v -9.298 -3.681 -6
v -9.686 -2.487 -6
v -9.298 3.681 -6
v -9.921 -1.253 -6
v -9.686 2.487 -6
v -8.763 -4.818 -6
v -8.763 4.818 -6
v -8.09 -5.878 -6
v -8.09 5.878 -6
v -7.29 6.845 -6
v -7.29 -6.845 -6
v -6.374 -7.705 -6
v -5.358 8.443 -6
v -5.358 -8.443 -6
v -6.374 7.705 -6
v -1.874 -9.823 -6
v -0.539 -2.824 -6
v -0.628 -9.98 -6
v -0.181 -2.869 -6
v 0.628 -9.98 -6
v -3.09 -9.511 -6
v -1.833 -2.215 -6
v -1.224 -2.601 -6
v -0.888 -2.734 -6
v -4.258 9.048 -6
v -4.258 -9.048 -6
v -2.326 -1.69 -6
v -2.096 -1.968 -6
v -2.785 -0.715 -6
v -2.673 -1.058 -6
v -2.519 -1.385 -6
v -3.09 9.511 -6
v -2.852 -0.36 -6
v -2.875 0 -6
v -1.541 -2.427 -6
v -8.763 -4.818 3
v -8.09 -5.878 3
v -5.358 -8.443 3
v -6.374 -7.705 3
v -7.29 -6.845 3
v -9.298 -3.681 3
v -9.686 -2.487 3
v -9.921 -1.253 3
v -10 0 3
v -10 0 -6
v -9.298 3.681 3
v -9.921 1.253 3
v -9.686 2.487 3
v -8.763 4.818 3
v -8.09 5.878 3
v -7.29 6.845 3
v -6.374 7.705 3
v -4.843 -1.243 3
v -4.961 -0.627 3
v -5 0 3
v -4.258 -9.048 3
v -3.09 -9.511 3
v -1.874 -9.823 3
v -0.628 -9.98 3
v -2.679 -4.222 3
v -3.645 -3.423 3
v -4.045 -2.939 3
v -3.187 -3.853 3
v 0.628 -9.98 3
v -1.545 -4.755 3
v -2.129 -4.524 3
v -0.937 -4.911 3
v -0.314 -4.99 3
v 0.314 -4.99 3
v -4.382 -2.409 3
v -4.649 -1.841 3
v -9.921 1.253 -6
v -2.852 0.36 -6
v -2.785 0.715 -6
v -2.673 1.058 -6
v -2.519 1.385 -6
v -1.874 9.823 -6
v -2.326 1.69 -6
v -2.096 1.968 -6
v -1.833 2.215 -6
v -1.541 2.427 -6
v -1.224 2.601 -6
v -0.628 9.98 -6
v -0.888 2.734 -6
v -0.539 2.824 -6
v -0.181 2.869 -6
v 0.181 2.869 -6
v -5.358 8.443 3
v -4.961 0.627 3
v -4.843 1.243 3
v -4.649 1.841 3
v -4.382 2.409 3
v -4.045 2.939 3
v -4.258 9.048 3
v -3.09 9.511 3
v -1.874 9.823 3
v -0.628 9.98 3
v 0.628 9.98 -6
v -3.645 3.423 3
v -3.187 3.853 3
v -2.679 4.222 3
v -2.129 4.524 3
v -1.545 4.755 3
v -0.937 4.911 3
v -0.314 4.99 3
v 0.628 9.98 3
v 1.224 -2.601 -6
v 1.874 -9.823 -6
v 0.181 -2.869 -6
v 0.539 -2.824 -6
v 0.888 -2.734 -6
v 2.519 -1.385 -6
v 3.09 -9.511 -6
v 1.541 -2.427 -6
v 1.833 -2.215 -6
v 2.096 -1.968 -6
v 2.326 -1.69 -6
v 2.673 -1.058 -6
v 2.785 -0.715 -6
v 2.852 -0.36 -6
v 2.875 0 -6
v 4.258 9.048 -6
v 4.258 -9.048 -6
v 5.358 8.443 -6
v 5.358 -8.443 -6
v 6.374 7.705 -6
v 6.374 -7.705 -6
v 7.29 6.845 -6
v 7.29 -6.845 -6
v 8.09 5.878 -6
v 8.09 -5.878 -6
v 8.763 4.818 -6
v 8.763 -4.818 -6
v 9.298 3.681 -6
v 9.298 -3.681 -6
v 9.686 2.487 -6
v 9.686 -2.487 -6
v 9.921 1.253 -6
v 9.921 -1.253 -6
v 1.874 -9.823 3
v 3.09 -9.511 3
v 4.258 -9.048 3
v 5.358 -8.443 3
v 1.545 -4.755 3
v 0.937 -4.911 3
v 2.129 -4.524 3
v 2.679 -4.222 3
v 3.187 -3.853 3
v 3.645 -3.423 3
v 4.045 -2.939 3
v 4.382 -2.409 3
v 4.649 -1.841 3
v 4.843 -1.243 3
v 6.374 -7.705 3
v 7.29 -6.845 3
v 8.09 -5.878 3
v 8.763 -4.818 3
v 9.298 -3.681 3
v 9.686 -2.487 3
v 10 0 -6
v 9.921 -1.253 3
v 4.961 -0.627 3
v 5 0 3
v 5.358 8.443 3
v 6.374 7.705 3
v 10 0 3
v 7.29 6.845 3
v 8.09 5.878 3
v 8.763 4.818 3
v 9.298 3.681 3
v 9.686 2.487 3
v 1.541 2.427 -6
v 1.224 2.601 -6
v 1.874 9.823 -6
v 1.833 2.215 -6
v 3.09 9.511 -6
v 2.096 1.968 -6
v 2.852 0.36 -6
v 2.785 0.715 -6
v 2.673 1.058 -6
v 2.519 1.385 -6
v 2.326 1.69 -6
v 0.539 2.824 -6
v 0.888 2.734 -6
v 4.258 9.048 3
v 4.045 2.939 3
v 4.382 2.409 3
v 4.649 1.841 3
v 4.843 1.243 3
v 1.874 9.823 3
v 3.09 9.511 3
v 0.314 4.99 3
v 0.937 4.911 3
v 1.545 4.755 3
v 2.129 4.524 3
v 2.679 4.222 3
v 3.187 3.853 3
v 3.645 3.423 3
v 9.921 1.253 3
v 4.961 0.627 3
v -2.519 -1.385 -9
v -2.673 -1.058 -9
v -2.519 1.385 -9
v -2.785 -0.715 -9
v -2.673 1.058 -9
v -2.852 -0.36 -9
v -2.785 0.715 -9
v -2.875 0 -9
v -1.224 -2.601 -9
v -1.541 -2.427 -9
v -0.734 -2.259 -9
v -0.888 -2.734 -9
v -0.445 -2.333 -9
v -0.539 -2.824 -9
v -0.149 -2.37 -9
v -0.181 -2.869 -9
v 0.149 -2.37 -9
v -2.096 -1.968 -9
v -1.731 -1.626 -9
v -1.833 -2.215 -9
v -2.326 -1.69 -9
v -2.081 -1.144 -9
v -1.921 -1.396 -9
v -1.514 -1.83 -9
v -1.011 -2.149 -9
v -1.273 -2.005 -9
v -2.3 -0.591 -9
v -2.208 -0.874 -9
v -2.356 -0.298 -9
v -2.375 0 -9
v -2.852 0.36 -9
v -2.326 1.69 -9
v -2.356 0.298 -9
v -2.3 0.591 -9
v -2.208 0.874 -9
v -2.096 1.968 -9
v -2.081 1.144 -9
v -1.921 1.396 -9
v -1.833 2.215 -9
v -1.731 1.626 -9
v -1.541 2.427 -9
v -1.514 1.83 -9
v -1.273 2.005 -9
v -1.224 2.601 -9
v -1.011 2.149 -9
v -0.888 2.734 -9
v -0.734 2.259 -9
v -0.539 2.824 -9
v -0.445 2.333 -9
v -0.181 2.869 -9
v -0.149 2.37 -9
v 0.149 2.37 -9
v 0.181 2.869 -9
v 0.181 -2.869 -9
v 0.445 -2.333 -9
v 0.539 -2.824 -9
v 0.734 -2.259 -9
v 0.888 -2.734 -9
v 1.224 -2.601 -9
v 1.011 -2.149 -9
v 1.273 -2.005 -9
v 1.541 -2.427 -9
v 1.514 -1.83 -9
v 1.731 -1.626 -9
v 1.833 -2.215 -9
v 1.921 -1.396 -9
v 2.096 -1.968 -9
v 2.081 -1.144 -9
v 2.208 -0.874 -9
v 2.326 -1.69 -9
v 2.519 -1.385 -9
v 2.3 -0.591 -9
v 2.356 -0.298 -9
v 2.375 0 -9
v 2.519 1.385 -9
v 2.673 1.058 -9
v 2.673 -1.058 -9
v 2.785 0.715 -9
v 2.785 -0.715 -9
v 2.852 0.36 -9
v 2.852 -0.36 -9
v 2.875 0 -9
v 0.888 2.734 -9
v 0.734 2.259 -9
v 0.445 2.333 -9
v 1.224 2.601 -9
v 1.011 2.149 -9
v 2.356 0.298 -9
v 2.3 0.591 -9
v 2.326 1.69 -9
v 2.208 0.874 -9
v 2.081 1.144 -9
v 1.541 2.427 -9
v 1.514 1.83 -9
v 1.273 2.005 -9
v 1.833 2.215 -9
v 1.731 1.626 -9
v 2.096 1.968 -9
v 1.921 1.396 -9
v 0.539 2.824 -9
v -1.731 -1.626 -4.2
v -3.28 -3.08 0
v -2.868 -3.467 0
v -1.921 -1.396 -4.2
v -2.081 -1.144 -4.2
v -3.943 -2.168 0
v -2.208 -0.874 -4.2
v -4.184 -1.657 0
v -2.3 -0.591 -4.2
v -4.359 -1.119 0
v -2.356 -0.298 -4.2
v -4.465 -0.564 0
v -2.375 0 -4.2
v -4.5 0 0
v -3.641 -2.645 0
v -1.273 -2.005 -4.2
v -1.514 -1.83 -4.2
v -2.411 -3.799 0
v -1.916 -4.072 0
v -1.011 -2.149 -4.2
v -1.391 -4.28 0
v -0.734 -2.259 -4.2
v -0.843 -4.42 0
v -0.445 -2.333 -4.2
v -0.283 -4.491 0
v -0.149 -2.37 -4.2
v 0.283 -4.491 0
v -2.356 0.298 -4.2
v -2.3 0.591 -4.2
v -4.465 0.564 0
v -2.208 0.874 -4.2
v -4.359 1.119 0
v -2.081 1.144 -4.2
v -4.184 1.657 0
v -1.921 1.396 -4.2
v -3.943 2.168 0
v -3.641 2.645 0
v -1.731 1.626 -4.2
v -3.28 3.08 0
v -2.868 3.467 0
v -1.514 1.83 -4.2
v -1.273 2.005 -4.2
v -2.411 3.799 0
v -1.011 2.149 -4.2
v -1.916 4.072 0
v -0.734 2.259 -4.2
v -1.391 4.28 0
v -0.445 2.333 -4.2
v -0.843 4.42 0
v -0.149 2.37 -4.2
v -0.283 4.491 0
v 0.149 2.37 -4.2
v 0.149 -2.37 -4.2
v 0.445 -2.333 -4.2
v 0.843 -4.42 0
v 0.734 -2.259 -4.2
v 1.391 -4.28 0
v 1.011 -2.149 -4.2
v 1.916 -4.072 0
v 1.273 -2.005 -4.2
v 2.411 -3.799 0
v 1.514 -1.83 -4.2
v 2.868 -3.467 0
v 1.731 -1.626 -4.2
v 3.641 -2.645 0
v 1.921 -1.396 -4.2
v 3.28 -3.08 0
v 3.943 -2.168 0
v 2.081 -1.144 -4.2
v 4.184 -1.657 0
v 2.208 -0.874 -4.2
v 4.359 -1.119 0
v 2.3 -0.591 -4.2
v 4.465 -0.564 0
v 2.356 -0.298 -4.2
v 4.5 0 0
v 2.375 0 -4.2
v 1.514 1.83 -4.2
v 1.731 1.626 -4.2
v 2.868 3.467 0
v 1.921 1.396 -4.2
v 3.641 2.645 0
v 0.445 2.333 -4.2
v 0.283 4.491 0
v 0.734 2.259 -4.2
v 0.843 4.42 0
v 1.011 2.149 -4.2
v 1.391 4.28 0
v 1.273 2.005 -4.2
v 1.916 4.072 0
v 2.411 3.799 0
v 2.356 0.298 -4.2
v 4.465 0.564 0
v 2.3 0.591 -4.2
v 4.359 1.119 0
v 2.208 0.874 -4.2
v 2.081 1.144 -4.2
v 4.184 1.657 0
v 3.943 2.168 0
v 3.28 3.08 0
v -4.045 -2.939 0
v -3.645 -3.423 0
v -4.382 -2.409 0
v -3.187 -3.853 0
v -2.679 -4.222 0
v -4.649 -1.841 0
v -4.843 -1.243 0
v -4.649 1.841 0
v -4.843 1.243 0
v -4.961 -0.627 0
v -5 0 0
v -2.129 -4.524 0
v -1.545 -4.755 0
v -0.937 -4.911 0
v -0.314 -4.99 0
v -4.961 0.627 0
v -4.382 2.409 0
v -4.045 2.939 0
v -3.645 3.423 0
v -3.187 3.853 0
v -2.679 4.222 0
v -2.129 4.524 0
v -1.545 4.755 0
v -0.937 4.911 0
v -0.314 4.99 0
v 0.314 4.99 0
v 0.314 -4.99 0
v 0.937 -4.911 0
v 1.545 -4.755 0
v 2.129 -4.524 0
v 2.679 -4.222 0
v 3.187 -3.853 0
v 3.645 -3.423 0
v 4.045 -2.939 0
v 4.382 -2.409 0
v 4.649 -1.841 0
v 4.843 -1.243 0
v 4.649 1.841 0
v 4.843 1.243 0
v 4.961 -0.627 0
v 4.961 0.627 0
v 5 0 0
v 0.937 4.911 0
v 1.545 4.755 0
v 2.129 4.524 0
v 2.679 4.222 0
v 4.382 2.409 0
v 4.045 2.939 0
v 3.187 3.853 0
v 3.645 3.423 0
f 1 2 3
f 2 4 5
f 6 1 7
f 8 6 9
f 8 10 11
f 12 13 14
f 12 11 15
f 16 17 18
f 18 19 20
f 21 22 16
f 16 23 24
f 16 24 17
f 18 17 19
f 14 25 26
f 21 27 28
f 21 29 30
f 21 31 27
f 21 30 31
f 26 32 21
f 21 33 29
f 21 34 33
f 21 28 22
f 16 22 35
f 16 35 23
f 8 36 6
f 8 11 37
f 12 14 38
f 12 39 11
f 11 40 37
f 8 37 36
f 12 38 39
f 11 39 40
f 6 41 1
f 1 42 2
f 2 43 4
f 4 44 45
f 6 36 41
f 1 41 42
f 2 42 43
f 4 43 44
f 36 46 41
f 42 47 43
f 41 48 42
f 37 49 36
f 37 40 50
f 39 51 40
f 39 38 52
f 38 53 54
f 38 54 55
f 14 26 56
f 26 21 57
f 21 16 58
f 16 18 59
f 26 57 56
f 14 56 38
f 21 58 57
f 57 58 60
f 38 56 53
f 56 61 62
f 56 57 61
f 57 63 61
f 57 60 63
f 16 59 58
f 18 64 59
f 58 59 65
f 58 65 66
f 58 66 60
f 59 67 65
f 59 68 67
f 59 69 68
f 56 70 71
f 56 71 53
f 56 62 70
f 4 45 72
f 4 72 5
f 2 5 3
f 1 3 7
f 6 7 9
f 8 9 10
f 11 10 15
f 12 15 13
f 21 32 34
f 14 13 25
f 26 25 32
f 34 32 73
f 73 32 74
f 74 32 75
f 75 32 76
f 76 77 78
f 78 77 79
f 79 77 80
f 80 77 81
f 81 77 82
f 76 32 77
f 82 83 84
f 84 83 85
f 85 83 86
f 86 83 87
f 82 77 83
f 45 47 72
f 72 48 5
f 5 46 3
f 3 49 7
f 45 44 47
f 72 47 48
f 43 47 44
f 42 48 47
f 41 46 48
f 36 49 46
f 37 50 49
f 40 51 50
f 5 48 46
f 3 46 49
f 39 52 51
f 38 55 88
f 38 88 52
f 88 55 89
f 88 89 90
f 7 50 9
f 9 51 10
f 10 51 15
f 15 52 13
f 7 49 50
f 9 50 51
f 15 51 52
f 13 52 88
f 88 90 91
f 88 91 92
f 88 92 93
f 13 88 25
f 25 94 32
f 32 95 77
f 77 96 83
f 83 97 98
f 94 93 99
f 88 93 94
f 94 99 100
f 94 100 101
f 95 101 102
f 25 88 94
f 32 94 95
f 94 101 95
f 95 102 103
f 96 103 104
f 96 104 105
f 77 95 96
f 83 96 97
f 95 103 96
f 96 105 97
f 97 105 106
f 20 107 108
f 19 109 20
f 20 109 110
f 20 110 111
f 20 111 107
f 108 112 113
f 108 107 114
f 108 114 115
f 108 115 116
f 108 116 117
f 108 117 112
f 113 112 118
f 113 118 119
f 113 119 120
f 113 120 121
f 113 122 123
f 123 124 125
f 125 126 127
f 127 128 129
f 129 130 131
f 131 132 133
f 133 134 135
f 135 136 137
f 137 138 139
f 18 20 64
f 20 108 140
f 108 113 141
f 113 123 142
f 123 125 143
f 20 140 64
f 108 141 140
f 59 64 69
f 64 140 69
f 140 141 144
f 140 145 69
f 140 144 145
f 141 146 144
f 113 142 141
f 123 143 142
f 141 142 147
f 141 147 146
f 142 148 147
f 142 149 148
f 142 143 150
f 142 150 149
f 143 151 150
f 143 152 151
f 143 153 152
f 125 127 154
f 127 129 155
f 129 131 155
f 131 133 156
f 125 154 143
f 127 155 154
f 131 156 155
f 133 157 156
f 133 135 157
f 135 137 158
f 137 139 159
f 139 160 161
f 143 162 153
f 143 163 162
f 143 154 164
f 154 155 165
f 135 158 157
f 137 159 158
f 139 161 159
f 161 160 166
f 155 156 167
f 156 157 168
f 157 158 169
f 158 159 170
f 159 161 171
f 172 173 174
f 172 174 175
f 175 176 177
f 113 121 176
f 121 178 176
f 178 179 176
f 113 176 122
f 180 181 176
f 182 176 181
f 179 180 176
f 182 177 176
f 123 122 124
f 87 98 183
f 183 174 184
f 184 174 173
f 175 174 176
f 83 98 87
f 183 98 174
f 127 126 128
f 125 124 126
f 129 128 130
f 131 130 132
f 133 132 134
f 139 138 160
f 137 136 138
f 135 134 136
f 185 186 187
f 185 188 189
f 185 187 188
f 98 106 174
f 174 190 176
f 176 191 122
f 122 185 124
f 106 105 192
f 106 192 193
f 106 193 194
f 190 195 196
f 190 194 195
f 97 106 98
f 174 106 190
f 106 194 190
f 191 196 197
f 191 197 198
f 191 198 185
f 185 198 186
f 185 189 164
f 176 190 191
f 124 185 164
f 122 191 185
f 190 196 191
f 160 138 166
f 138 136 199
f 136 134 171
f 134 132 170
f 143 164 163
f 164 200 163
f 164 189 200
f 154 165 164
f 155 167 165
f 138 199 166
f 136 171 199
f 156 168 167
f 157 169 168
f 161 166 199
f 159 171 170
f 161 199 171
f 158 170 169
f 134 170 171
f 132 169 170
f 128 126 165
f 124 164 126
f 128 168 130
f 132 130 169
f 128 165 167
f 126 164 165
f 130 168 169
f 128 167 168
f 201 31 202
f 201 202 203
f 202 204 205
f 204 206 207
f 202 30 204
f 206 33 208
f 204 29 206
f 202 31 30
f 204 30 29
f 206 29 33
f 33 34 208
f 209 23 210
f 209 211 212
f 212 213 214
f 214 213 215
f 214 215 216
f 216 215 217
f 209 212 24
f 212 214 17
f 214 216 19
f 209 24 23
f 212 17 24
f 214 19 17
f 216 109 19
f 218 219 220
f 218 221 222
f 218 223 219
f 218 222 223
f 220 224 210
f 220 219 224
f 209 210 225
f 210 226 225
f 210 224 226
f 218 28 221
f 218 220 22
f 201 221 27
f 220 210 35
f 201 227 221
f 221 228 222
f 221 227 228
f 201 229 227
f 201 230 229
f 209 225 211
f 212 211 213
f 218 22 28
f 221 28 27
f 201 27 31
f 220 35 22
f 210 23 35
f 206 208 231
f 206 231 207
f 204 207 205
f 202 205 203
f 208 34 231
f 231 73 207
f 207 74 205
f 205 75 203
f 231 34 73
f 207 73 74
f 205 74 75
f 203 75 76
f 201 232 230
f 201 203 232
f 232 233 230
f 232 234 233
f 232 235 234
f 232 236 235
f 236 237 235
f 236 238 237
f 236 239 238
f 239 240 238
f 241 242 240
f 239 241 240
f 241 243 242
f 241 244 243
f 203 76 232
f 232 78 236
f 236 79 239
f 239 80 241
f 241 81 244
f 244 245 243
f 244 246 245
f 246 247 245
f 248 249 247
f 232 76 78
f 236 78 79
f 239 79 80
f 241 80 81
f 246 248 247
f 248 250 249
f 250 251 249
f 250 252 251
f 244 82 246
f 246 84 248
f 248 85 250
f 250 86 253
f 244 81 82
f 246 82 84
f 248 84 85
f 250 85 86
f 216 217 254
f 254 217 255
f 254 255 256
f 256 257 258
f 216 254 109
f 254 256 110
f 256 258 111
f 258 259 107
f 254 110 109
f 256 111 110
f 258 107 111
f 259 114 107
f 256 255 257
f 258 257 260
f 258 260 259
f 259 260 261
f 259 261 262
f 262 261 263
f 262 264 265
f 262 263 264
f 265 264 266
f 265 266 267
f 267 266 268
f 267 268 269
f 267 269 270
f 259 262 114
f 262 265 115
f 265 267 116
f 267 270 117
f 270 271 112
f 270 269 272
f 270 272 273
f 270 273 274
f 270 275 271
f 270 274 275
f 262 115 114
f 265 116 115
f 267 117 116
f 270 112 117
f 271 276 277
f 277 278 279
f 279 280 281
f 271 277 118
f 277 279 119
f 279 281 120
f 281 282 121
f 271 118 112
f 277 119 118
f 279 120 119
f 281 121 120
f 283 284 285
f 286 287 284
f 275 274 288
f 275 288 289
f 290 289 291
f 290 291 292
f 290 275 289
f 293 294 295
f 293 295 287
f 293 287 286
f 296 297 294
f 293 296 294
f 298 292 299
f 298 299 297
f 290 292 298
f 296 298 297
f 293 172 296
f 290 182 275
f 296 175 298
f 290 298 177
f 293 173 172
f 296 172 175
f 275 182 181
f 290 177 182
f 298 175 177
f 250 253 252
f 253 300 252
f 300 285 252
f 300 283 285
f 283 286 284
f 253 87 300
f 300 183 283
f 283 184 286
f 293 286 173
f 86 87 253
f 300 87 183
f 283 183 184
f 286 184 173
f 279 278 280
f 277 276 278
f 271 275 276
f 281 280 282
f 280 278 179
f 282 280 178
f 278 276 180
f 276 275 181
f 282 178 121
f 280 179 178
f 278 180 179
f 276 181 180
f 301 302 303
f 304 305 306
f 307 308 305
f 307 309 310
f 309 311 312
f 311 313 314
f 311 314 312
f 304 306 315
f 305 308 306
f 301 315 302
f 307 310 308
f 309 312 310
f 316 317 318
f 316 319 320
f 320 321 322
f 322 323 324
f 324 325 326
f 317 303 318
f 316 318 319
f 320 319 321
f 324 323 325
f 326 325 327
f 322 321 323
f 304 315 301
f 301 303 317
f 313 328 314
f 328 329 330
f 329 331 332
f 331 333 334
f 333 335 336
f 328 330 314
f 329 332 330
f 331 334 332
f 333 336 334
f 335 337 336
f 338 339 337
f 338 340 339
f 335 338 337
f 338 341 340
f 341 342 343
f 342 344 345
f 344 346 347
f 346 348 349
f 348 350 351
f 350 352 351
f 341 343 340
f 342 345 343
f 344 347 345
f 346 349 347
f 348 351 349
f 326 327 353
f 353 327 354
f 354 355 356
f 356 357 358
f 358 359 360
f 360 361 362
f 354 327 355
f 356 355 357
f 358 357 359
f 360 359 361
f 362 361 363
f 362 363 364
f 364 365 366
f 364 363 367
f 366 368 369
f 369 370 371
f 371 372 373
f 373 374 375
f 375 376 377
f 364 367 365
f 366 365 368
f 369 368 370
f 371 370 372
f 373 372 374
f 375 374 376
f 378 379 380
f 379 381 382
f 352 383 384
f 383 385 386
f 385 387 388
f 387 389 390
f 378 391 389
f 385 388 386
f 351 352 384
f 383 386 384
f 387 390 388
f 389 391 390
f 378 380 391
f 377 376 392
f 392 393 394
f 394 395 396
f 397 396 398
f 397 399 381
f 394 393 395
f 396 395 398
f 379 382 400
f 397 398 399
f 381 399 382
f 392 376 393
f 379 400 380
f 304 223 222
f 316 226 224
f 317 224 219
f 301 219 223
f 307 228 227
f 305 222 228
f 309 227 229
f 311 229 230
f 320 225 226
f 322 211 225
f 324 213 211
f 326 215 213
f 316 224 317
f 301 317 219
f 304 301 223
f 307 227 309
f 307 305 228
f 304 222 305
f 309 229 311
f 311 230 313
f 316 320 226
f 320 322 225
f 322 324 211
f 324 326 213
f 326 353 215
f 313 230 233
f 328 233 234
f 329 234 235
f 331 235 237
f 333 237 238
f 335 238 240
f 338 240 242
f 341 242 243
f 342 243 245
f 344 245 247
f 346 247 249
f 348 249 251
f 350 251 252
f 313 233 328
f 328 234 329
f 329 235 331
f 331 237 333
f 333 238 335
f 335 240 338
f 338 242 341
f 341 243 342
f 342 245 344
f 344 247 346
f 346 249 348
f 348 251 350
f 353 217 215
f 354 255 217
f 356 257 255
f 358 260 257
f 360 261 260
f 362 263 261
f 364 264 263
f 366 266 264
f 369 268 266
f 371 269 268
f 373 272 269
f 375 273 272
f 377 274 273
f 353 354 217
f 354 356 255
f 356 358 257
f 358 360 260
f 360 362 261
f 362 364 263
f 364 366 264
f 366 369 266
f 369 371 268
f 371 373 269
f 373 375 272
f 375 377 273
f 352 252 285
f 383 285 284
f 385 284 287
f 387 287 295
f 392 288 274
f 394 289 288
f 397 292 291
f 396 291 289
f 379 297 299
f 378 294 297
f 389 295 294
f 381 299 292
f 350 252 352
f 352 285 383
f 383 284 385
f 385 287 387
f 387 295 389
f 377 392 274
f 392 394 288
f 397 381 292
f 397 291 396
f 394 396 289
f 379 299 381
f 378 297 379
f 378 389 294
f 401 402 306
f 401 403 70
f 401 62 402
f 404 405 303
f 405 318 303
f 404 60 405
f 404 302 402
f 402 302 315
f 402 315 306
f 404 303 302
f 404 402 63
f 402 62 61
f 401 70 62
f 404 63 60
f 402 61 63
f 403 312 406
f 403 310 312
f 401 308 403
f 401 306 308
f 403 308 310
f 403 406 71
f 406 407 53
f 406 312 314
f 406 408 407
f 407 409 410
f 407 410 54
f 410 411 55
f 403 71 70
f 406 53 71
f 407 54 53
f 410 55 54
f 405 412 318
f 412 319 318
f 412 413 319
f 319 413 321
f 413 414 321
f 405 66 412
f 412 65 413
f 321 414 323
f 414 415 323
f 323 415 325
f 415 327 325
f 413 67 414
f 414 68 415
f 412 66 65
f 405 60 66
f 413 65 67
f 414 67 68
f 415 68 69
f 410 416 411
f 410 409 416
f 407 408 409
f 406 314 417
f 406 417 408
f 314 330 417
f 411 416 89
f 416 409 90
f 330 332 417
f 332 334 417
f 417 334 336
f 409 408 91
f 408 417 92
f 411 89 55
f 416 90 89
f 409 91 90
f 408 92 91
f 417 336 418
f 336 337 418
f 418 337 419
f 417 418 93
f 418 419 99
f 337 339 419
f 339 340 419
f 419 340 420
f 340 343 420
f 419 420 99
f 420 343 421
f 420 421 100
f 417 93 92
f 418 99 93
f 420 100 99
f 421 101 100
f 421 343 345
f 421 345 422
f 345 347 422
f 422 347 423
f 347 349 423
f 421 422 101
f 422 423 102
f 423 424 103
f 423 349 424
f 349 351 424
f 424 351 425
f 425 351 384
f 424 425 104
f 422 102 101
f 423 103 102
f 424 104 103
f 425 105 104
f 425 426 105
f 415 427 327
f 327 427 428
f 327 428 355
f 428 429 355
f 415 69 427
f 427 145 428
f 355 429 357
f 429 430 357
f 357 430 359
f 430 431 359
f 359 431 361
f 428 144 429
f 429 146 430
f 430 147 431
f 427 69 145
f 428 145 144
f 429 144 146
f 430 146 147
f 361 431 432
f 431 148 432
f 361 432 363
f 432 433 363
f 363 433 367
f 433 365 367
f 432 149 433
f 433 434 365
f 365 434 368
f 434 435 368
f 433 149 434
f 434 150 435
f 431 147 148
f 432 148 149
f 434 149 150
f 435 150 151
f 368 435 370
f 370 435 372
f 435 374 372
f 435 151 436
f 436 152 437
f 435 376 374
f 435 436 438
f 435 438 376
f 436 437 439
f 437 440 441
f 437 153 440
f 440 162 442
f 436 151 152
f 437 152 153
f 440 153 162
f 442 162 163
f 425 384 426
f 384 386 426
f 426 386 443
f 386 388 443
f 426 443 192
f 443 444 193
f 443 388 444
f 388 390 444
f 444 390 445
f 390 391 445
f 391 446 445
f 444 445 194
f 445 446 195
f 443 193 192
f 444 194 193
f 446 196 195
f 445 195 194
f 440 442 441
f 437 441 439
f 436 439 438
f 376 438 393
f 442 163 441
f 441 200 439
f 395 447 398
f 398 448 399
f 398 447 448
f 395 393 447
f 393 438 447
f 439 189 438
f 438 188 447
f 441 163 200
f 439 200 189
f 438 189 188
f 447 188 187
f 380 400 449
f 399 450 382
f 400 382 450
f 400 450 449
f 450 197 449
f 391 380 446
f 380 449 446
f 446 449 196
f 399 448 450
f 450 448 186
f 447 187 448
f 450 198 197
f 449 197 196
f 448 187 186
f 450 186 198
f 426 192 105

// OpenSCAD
$fn = 50;


difference() {
	union() {
		translate(v = [0, 0, -6.0000000000]) {
			cylinder(h = 9, r = 10.0000000000);
		}
		#translate(v = [0, 0, -9.0000000000]) {
			cylinder(h = 9, r = 2.8750000000);
		}
	}
	union() {
		translate(v = [0, 0, 0]) {
			rotate(a = [0, 0, 0]) {
				difference() {
					union() {
						translate(v = [0, 0, -9.0000000000]) {
							cylinder(h = 9, r = 2.2500000000);
						}
						translate(v = [0, 0, -4.2000000000]) {
							cylinder(h = 4.2000000000, r1 = 2.3750000000, r2 = 4.5000000000);
						}
						translate(v = [0, 0, -9.0000000000]) {
							cylinder(h = 9, r = 2.3750000000);
						}
						translate(v = [0, 0, -9.0000000000]) {
							cylinder(h = 9, r = 2.2500000000);
						}
					}
					union();
				}
			}
		}
		#cylinder(h = 3, r = 5.0000000000);
	}
}
